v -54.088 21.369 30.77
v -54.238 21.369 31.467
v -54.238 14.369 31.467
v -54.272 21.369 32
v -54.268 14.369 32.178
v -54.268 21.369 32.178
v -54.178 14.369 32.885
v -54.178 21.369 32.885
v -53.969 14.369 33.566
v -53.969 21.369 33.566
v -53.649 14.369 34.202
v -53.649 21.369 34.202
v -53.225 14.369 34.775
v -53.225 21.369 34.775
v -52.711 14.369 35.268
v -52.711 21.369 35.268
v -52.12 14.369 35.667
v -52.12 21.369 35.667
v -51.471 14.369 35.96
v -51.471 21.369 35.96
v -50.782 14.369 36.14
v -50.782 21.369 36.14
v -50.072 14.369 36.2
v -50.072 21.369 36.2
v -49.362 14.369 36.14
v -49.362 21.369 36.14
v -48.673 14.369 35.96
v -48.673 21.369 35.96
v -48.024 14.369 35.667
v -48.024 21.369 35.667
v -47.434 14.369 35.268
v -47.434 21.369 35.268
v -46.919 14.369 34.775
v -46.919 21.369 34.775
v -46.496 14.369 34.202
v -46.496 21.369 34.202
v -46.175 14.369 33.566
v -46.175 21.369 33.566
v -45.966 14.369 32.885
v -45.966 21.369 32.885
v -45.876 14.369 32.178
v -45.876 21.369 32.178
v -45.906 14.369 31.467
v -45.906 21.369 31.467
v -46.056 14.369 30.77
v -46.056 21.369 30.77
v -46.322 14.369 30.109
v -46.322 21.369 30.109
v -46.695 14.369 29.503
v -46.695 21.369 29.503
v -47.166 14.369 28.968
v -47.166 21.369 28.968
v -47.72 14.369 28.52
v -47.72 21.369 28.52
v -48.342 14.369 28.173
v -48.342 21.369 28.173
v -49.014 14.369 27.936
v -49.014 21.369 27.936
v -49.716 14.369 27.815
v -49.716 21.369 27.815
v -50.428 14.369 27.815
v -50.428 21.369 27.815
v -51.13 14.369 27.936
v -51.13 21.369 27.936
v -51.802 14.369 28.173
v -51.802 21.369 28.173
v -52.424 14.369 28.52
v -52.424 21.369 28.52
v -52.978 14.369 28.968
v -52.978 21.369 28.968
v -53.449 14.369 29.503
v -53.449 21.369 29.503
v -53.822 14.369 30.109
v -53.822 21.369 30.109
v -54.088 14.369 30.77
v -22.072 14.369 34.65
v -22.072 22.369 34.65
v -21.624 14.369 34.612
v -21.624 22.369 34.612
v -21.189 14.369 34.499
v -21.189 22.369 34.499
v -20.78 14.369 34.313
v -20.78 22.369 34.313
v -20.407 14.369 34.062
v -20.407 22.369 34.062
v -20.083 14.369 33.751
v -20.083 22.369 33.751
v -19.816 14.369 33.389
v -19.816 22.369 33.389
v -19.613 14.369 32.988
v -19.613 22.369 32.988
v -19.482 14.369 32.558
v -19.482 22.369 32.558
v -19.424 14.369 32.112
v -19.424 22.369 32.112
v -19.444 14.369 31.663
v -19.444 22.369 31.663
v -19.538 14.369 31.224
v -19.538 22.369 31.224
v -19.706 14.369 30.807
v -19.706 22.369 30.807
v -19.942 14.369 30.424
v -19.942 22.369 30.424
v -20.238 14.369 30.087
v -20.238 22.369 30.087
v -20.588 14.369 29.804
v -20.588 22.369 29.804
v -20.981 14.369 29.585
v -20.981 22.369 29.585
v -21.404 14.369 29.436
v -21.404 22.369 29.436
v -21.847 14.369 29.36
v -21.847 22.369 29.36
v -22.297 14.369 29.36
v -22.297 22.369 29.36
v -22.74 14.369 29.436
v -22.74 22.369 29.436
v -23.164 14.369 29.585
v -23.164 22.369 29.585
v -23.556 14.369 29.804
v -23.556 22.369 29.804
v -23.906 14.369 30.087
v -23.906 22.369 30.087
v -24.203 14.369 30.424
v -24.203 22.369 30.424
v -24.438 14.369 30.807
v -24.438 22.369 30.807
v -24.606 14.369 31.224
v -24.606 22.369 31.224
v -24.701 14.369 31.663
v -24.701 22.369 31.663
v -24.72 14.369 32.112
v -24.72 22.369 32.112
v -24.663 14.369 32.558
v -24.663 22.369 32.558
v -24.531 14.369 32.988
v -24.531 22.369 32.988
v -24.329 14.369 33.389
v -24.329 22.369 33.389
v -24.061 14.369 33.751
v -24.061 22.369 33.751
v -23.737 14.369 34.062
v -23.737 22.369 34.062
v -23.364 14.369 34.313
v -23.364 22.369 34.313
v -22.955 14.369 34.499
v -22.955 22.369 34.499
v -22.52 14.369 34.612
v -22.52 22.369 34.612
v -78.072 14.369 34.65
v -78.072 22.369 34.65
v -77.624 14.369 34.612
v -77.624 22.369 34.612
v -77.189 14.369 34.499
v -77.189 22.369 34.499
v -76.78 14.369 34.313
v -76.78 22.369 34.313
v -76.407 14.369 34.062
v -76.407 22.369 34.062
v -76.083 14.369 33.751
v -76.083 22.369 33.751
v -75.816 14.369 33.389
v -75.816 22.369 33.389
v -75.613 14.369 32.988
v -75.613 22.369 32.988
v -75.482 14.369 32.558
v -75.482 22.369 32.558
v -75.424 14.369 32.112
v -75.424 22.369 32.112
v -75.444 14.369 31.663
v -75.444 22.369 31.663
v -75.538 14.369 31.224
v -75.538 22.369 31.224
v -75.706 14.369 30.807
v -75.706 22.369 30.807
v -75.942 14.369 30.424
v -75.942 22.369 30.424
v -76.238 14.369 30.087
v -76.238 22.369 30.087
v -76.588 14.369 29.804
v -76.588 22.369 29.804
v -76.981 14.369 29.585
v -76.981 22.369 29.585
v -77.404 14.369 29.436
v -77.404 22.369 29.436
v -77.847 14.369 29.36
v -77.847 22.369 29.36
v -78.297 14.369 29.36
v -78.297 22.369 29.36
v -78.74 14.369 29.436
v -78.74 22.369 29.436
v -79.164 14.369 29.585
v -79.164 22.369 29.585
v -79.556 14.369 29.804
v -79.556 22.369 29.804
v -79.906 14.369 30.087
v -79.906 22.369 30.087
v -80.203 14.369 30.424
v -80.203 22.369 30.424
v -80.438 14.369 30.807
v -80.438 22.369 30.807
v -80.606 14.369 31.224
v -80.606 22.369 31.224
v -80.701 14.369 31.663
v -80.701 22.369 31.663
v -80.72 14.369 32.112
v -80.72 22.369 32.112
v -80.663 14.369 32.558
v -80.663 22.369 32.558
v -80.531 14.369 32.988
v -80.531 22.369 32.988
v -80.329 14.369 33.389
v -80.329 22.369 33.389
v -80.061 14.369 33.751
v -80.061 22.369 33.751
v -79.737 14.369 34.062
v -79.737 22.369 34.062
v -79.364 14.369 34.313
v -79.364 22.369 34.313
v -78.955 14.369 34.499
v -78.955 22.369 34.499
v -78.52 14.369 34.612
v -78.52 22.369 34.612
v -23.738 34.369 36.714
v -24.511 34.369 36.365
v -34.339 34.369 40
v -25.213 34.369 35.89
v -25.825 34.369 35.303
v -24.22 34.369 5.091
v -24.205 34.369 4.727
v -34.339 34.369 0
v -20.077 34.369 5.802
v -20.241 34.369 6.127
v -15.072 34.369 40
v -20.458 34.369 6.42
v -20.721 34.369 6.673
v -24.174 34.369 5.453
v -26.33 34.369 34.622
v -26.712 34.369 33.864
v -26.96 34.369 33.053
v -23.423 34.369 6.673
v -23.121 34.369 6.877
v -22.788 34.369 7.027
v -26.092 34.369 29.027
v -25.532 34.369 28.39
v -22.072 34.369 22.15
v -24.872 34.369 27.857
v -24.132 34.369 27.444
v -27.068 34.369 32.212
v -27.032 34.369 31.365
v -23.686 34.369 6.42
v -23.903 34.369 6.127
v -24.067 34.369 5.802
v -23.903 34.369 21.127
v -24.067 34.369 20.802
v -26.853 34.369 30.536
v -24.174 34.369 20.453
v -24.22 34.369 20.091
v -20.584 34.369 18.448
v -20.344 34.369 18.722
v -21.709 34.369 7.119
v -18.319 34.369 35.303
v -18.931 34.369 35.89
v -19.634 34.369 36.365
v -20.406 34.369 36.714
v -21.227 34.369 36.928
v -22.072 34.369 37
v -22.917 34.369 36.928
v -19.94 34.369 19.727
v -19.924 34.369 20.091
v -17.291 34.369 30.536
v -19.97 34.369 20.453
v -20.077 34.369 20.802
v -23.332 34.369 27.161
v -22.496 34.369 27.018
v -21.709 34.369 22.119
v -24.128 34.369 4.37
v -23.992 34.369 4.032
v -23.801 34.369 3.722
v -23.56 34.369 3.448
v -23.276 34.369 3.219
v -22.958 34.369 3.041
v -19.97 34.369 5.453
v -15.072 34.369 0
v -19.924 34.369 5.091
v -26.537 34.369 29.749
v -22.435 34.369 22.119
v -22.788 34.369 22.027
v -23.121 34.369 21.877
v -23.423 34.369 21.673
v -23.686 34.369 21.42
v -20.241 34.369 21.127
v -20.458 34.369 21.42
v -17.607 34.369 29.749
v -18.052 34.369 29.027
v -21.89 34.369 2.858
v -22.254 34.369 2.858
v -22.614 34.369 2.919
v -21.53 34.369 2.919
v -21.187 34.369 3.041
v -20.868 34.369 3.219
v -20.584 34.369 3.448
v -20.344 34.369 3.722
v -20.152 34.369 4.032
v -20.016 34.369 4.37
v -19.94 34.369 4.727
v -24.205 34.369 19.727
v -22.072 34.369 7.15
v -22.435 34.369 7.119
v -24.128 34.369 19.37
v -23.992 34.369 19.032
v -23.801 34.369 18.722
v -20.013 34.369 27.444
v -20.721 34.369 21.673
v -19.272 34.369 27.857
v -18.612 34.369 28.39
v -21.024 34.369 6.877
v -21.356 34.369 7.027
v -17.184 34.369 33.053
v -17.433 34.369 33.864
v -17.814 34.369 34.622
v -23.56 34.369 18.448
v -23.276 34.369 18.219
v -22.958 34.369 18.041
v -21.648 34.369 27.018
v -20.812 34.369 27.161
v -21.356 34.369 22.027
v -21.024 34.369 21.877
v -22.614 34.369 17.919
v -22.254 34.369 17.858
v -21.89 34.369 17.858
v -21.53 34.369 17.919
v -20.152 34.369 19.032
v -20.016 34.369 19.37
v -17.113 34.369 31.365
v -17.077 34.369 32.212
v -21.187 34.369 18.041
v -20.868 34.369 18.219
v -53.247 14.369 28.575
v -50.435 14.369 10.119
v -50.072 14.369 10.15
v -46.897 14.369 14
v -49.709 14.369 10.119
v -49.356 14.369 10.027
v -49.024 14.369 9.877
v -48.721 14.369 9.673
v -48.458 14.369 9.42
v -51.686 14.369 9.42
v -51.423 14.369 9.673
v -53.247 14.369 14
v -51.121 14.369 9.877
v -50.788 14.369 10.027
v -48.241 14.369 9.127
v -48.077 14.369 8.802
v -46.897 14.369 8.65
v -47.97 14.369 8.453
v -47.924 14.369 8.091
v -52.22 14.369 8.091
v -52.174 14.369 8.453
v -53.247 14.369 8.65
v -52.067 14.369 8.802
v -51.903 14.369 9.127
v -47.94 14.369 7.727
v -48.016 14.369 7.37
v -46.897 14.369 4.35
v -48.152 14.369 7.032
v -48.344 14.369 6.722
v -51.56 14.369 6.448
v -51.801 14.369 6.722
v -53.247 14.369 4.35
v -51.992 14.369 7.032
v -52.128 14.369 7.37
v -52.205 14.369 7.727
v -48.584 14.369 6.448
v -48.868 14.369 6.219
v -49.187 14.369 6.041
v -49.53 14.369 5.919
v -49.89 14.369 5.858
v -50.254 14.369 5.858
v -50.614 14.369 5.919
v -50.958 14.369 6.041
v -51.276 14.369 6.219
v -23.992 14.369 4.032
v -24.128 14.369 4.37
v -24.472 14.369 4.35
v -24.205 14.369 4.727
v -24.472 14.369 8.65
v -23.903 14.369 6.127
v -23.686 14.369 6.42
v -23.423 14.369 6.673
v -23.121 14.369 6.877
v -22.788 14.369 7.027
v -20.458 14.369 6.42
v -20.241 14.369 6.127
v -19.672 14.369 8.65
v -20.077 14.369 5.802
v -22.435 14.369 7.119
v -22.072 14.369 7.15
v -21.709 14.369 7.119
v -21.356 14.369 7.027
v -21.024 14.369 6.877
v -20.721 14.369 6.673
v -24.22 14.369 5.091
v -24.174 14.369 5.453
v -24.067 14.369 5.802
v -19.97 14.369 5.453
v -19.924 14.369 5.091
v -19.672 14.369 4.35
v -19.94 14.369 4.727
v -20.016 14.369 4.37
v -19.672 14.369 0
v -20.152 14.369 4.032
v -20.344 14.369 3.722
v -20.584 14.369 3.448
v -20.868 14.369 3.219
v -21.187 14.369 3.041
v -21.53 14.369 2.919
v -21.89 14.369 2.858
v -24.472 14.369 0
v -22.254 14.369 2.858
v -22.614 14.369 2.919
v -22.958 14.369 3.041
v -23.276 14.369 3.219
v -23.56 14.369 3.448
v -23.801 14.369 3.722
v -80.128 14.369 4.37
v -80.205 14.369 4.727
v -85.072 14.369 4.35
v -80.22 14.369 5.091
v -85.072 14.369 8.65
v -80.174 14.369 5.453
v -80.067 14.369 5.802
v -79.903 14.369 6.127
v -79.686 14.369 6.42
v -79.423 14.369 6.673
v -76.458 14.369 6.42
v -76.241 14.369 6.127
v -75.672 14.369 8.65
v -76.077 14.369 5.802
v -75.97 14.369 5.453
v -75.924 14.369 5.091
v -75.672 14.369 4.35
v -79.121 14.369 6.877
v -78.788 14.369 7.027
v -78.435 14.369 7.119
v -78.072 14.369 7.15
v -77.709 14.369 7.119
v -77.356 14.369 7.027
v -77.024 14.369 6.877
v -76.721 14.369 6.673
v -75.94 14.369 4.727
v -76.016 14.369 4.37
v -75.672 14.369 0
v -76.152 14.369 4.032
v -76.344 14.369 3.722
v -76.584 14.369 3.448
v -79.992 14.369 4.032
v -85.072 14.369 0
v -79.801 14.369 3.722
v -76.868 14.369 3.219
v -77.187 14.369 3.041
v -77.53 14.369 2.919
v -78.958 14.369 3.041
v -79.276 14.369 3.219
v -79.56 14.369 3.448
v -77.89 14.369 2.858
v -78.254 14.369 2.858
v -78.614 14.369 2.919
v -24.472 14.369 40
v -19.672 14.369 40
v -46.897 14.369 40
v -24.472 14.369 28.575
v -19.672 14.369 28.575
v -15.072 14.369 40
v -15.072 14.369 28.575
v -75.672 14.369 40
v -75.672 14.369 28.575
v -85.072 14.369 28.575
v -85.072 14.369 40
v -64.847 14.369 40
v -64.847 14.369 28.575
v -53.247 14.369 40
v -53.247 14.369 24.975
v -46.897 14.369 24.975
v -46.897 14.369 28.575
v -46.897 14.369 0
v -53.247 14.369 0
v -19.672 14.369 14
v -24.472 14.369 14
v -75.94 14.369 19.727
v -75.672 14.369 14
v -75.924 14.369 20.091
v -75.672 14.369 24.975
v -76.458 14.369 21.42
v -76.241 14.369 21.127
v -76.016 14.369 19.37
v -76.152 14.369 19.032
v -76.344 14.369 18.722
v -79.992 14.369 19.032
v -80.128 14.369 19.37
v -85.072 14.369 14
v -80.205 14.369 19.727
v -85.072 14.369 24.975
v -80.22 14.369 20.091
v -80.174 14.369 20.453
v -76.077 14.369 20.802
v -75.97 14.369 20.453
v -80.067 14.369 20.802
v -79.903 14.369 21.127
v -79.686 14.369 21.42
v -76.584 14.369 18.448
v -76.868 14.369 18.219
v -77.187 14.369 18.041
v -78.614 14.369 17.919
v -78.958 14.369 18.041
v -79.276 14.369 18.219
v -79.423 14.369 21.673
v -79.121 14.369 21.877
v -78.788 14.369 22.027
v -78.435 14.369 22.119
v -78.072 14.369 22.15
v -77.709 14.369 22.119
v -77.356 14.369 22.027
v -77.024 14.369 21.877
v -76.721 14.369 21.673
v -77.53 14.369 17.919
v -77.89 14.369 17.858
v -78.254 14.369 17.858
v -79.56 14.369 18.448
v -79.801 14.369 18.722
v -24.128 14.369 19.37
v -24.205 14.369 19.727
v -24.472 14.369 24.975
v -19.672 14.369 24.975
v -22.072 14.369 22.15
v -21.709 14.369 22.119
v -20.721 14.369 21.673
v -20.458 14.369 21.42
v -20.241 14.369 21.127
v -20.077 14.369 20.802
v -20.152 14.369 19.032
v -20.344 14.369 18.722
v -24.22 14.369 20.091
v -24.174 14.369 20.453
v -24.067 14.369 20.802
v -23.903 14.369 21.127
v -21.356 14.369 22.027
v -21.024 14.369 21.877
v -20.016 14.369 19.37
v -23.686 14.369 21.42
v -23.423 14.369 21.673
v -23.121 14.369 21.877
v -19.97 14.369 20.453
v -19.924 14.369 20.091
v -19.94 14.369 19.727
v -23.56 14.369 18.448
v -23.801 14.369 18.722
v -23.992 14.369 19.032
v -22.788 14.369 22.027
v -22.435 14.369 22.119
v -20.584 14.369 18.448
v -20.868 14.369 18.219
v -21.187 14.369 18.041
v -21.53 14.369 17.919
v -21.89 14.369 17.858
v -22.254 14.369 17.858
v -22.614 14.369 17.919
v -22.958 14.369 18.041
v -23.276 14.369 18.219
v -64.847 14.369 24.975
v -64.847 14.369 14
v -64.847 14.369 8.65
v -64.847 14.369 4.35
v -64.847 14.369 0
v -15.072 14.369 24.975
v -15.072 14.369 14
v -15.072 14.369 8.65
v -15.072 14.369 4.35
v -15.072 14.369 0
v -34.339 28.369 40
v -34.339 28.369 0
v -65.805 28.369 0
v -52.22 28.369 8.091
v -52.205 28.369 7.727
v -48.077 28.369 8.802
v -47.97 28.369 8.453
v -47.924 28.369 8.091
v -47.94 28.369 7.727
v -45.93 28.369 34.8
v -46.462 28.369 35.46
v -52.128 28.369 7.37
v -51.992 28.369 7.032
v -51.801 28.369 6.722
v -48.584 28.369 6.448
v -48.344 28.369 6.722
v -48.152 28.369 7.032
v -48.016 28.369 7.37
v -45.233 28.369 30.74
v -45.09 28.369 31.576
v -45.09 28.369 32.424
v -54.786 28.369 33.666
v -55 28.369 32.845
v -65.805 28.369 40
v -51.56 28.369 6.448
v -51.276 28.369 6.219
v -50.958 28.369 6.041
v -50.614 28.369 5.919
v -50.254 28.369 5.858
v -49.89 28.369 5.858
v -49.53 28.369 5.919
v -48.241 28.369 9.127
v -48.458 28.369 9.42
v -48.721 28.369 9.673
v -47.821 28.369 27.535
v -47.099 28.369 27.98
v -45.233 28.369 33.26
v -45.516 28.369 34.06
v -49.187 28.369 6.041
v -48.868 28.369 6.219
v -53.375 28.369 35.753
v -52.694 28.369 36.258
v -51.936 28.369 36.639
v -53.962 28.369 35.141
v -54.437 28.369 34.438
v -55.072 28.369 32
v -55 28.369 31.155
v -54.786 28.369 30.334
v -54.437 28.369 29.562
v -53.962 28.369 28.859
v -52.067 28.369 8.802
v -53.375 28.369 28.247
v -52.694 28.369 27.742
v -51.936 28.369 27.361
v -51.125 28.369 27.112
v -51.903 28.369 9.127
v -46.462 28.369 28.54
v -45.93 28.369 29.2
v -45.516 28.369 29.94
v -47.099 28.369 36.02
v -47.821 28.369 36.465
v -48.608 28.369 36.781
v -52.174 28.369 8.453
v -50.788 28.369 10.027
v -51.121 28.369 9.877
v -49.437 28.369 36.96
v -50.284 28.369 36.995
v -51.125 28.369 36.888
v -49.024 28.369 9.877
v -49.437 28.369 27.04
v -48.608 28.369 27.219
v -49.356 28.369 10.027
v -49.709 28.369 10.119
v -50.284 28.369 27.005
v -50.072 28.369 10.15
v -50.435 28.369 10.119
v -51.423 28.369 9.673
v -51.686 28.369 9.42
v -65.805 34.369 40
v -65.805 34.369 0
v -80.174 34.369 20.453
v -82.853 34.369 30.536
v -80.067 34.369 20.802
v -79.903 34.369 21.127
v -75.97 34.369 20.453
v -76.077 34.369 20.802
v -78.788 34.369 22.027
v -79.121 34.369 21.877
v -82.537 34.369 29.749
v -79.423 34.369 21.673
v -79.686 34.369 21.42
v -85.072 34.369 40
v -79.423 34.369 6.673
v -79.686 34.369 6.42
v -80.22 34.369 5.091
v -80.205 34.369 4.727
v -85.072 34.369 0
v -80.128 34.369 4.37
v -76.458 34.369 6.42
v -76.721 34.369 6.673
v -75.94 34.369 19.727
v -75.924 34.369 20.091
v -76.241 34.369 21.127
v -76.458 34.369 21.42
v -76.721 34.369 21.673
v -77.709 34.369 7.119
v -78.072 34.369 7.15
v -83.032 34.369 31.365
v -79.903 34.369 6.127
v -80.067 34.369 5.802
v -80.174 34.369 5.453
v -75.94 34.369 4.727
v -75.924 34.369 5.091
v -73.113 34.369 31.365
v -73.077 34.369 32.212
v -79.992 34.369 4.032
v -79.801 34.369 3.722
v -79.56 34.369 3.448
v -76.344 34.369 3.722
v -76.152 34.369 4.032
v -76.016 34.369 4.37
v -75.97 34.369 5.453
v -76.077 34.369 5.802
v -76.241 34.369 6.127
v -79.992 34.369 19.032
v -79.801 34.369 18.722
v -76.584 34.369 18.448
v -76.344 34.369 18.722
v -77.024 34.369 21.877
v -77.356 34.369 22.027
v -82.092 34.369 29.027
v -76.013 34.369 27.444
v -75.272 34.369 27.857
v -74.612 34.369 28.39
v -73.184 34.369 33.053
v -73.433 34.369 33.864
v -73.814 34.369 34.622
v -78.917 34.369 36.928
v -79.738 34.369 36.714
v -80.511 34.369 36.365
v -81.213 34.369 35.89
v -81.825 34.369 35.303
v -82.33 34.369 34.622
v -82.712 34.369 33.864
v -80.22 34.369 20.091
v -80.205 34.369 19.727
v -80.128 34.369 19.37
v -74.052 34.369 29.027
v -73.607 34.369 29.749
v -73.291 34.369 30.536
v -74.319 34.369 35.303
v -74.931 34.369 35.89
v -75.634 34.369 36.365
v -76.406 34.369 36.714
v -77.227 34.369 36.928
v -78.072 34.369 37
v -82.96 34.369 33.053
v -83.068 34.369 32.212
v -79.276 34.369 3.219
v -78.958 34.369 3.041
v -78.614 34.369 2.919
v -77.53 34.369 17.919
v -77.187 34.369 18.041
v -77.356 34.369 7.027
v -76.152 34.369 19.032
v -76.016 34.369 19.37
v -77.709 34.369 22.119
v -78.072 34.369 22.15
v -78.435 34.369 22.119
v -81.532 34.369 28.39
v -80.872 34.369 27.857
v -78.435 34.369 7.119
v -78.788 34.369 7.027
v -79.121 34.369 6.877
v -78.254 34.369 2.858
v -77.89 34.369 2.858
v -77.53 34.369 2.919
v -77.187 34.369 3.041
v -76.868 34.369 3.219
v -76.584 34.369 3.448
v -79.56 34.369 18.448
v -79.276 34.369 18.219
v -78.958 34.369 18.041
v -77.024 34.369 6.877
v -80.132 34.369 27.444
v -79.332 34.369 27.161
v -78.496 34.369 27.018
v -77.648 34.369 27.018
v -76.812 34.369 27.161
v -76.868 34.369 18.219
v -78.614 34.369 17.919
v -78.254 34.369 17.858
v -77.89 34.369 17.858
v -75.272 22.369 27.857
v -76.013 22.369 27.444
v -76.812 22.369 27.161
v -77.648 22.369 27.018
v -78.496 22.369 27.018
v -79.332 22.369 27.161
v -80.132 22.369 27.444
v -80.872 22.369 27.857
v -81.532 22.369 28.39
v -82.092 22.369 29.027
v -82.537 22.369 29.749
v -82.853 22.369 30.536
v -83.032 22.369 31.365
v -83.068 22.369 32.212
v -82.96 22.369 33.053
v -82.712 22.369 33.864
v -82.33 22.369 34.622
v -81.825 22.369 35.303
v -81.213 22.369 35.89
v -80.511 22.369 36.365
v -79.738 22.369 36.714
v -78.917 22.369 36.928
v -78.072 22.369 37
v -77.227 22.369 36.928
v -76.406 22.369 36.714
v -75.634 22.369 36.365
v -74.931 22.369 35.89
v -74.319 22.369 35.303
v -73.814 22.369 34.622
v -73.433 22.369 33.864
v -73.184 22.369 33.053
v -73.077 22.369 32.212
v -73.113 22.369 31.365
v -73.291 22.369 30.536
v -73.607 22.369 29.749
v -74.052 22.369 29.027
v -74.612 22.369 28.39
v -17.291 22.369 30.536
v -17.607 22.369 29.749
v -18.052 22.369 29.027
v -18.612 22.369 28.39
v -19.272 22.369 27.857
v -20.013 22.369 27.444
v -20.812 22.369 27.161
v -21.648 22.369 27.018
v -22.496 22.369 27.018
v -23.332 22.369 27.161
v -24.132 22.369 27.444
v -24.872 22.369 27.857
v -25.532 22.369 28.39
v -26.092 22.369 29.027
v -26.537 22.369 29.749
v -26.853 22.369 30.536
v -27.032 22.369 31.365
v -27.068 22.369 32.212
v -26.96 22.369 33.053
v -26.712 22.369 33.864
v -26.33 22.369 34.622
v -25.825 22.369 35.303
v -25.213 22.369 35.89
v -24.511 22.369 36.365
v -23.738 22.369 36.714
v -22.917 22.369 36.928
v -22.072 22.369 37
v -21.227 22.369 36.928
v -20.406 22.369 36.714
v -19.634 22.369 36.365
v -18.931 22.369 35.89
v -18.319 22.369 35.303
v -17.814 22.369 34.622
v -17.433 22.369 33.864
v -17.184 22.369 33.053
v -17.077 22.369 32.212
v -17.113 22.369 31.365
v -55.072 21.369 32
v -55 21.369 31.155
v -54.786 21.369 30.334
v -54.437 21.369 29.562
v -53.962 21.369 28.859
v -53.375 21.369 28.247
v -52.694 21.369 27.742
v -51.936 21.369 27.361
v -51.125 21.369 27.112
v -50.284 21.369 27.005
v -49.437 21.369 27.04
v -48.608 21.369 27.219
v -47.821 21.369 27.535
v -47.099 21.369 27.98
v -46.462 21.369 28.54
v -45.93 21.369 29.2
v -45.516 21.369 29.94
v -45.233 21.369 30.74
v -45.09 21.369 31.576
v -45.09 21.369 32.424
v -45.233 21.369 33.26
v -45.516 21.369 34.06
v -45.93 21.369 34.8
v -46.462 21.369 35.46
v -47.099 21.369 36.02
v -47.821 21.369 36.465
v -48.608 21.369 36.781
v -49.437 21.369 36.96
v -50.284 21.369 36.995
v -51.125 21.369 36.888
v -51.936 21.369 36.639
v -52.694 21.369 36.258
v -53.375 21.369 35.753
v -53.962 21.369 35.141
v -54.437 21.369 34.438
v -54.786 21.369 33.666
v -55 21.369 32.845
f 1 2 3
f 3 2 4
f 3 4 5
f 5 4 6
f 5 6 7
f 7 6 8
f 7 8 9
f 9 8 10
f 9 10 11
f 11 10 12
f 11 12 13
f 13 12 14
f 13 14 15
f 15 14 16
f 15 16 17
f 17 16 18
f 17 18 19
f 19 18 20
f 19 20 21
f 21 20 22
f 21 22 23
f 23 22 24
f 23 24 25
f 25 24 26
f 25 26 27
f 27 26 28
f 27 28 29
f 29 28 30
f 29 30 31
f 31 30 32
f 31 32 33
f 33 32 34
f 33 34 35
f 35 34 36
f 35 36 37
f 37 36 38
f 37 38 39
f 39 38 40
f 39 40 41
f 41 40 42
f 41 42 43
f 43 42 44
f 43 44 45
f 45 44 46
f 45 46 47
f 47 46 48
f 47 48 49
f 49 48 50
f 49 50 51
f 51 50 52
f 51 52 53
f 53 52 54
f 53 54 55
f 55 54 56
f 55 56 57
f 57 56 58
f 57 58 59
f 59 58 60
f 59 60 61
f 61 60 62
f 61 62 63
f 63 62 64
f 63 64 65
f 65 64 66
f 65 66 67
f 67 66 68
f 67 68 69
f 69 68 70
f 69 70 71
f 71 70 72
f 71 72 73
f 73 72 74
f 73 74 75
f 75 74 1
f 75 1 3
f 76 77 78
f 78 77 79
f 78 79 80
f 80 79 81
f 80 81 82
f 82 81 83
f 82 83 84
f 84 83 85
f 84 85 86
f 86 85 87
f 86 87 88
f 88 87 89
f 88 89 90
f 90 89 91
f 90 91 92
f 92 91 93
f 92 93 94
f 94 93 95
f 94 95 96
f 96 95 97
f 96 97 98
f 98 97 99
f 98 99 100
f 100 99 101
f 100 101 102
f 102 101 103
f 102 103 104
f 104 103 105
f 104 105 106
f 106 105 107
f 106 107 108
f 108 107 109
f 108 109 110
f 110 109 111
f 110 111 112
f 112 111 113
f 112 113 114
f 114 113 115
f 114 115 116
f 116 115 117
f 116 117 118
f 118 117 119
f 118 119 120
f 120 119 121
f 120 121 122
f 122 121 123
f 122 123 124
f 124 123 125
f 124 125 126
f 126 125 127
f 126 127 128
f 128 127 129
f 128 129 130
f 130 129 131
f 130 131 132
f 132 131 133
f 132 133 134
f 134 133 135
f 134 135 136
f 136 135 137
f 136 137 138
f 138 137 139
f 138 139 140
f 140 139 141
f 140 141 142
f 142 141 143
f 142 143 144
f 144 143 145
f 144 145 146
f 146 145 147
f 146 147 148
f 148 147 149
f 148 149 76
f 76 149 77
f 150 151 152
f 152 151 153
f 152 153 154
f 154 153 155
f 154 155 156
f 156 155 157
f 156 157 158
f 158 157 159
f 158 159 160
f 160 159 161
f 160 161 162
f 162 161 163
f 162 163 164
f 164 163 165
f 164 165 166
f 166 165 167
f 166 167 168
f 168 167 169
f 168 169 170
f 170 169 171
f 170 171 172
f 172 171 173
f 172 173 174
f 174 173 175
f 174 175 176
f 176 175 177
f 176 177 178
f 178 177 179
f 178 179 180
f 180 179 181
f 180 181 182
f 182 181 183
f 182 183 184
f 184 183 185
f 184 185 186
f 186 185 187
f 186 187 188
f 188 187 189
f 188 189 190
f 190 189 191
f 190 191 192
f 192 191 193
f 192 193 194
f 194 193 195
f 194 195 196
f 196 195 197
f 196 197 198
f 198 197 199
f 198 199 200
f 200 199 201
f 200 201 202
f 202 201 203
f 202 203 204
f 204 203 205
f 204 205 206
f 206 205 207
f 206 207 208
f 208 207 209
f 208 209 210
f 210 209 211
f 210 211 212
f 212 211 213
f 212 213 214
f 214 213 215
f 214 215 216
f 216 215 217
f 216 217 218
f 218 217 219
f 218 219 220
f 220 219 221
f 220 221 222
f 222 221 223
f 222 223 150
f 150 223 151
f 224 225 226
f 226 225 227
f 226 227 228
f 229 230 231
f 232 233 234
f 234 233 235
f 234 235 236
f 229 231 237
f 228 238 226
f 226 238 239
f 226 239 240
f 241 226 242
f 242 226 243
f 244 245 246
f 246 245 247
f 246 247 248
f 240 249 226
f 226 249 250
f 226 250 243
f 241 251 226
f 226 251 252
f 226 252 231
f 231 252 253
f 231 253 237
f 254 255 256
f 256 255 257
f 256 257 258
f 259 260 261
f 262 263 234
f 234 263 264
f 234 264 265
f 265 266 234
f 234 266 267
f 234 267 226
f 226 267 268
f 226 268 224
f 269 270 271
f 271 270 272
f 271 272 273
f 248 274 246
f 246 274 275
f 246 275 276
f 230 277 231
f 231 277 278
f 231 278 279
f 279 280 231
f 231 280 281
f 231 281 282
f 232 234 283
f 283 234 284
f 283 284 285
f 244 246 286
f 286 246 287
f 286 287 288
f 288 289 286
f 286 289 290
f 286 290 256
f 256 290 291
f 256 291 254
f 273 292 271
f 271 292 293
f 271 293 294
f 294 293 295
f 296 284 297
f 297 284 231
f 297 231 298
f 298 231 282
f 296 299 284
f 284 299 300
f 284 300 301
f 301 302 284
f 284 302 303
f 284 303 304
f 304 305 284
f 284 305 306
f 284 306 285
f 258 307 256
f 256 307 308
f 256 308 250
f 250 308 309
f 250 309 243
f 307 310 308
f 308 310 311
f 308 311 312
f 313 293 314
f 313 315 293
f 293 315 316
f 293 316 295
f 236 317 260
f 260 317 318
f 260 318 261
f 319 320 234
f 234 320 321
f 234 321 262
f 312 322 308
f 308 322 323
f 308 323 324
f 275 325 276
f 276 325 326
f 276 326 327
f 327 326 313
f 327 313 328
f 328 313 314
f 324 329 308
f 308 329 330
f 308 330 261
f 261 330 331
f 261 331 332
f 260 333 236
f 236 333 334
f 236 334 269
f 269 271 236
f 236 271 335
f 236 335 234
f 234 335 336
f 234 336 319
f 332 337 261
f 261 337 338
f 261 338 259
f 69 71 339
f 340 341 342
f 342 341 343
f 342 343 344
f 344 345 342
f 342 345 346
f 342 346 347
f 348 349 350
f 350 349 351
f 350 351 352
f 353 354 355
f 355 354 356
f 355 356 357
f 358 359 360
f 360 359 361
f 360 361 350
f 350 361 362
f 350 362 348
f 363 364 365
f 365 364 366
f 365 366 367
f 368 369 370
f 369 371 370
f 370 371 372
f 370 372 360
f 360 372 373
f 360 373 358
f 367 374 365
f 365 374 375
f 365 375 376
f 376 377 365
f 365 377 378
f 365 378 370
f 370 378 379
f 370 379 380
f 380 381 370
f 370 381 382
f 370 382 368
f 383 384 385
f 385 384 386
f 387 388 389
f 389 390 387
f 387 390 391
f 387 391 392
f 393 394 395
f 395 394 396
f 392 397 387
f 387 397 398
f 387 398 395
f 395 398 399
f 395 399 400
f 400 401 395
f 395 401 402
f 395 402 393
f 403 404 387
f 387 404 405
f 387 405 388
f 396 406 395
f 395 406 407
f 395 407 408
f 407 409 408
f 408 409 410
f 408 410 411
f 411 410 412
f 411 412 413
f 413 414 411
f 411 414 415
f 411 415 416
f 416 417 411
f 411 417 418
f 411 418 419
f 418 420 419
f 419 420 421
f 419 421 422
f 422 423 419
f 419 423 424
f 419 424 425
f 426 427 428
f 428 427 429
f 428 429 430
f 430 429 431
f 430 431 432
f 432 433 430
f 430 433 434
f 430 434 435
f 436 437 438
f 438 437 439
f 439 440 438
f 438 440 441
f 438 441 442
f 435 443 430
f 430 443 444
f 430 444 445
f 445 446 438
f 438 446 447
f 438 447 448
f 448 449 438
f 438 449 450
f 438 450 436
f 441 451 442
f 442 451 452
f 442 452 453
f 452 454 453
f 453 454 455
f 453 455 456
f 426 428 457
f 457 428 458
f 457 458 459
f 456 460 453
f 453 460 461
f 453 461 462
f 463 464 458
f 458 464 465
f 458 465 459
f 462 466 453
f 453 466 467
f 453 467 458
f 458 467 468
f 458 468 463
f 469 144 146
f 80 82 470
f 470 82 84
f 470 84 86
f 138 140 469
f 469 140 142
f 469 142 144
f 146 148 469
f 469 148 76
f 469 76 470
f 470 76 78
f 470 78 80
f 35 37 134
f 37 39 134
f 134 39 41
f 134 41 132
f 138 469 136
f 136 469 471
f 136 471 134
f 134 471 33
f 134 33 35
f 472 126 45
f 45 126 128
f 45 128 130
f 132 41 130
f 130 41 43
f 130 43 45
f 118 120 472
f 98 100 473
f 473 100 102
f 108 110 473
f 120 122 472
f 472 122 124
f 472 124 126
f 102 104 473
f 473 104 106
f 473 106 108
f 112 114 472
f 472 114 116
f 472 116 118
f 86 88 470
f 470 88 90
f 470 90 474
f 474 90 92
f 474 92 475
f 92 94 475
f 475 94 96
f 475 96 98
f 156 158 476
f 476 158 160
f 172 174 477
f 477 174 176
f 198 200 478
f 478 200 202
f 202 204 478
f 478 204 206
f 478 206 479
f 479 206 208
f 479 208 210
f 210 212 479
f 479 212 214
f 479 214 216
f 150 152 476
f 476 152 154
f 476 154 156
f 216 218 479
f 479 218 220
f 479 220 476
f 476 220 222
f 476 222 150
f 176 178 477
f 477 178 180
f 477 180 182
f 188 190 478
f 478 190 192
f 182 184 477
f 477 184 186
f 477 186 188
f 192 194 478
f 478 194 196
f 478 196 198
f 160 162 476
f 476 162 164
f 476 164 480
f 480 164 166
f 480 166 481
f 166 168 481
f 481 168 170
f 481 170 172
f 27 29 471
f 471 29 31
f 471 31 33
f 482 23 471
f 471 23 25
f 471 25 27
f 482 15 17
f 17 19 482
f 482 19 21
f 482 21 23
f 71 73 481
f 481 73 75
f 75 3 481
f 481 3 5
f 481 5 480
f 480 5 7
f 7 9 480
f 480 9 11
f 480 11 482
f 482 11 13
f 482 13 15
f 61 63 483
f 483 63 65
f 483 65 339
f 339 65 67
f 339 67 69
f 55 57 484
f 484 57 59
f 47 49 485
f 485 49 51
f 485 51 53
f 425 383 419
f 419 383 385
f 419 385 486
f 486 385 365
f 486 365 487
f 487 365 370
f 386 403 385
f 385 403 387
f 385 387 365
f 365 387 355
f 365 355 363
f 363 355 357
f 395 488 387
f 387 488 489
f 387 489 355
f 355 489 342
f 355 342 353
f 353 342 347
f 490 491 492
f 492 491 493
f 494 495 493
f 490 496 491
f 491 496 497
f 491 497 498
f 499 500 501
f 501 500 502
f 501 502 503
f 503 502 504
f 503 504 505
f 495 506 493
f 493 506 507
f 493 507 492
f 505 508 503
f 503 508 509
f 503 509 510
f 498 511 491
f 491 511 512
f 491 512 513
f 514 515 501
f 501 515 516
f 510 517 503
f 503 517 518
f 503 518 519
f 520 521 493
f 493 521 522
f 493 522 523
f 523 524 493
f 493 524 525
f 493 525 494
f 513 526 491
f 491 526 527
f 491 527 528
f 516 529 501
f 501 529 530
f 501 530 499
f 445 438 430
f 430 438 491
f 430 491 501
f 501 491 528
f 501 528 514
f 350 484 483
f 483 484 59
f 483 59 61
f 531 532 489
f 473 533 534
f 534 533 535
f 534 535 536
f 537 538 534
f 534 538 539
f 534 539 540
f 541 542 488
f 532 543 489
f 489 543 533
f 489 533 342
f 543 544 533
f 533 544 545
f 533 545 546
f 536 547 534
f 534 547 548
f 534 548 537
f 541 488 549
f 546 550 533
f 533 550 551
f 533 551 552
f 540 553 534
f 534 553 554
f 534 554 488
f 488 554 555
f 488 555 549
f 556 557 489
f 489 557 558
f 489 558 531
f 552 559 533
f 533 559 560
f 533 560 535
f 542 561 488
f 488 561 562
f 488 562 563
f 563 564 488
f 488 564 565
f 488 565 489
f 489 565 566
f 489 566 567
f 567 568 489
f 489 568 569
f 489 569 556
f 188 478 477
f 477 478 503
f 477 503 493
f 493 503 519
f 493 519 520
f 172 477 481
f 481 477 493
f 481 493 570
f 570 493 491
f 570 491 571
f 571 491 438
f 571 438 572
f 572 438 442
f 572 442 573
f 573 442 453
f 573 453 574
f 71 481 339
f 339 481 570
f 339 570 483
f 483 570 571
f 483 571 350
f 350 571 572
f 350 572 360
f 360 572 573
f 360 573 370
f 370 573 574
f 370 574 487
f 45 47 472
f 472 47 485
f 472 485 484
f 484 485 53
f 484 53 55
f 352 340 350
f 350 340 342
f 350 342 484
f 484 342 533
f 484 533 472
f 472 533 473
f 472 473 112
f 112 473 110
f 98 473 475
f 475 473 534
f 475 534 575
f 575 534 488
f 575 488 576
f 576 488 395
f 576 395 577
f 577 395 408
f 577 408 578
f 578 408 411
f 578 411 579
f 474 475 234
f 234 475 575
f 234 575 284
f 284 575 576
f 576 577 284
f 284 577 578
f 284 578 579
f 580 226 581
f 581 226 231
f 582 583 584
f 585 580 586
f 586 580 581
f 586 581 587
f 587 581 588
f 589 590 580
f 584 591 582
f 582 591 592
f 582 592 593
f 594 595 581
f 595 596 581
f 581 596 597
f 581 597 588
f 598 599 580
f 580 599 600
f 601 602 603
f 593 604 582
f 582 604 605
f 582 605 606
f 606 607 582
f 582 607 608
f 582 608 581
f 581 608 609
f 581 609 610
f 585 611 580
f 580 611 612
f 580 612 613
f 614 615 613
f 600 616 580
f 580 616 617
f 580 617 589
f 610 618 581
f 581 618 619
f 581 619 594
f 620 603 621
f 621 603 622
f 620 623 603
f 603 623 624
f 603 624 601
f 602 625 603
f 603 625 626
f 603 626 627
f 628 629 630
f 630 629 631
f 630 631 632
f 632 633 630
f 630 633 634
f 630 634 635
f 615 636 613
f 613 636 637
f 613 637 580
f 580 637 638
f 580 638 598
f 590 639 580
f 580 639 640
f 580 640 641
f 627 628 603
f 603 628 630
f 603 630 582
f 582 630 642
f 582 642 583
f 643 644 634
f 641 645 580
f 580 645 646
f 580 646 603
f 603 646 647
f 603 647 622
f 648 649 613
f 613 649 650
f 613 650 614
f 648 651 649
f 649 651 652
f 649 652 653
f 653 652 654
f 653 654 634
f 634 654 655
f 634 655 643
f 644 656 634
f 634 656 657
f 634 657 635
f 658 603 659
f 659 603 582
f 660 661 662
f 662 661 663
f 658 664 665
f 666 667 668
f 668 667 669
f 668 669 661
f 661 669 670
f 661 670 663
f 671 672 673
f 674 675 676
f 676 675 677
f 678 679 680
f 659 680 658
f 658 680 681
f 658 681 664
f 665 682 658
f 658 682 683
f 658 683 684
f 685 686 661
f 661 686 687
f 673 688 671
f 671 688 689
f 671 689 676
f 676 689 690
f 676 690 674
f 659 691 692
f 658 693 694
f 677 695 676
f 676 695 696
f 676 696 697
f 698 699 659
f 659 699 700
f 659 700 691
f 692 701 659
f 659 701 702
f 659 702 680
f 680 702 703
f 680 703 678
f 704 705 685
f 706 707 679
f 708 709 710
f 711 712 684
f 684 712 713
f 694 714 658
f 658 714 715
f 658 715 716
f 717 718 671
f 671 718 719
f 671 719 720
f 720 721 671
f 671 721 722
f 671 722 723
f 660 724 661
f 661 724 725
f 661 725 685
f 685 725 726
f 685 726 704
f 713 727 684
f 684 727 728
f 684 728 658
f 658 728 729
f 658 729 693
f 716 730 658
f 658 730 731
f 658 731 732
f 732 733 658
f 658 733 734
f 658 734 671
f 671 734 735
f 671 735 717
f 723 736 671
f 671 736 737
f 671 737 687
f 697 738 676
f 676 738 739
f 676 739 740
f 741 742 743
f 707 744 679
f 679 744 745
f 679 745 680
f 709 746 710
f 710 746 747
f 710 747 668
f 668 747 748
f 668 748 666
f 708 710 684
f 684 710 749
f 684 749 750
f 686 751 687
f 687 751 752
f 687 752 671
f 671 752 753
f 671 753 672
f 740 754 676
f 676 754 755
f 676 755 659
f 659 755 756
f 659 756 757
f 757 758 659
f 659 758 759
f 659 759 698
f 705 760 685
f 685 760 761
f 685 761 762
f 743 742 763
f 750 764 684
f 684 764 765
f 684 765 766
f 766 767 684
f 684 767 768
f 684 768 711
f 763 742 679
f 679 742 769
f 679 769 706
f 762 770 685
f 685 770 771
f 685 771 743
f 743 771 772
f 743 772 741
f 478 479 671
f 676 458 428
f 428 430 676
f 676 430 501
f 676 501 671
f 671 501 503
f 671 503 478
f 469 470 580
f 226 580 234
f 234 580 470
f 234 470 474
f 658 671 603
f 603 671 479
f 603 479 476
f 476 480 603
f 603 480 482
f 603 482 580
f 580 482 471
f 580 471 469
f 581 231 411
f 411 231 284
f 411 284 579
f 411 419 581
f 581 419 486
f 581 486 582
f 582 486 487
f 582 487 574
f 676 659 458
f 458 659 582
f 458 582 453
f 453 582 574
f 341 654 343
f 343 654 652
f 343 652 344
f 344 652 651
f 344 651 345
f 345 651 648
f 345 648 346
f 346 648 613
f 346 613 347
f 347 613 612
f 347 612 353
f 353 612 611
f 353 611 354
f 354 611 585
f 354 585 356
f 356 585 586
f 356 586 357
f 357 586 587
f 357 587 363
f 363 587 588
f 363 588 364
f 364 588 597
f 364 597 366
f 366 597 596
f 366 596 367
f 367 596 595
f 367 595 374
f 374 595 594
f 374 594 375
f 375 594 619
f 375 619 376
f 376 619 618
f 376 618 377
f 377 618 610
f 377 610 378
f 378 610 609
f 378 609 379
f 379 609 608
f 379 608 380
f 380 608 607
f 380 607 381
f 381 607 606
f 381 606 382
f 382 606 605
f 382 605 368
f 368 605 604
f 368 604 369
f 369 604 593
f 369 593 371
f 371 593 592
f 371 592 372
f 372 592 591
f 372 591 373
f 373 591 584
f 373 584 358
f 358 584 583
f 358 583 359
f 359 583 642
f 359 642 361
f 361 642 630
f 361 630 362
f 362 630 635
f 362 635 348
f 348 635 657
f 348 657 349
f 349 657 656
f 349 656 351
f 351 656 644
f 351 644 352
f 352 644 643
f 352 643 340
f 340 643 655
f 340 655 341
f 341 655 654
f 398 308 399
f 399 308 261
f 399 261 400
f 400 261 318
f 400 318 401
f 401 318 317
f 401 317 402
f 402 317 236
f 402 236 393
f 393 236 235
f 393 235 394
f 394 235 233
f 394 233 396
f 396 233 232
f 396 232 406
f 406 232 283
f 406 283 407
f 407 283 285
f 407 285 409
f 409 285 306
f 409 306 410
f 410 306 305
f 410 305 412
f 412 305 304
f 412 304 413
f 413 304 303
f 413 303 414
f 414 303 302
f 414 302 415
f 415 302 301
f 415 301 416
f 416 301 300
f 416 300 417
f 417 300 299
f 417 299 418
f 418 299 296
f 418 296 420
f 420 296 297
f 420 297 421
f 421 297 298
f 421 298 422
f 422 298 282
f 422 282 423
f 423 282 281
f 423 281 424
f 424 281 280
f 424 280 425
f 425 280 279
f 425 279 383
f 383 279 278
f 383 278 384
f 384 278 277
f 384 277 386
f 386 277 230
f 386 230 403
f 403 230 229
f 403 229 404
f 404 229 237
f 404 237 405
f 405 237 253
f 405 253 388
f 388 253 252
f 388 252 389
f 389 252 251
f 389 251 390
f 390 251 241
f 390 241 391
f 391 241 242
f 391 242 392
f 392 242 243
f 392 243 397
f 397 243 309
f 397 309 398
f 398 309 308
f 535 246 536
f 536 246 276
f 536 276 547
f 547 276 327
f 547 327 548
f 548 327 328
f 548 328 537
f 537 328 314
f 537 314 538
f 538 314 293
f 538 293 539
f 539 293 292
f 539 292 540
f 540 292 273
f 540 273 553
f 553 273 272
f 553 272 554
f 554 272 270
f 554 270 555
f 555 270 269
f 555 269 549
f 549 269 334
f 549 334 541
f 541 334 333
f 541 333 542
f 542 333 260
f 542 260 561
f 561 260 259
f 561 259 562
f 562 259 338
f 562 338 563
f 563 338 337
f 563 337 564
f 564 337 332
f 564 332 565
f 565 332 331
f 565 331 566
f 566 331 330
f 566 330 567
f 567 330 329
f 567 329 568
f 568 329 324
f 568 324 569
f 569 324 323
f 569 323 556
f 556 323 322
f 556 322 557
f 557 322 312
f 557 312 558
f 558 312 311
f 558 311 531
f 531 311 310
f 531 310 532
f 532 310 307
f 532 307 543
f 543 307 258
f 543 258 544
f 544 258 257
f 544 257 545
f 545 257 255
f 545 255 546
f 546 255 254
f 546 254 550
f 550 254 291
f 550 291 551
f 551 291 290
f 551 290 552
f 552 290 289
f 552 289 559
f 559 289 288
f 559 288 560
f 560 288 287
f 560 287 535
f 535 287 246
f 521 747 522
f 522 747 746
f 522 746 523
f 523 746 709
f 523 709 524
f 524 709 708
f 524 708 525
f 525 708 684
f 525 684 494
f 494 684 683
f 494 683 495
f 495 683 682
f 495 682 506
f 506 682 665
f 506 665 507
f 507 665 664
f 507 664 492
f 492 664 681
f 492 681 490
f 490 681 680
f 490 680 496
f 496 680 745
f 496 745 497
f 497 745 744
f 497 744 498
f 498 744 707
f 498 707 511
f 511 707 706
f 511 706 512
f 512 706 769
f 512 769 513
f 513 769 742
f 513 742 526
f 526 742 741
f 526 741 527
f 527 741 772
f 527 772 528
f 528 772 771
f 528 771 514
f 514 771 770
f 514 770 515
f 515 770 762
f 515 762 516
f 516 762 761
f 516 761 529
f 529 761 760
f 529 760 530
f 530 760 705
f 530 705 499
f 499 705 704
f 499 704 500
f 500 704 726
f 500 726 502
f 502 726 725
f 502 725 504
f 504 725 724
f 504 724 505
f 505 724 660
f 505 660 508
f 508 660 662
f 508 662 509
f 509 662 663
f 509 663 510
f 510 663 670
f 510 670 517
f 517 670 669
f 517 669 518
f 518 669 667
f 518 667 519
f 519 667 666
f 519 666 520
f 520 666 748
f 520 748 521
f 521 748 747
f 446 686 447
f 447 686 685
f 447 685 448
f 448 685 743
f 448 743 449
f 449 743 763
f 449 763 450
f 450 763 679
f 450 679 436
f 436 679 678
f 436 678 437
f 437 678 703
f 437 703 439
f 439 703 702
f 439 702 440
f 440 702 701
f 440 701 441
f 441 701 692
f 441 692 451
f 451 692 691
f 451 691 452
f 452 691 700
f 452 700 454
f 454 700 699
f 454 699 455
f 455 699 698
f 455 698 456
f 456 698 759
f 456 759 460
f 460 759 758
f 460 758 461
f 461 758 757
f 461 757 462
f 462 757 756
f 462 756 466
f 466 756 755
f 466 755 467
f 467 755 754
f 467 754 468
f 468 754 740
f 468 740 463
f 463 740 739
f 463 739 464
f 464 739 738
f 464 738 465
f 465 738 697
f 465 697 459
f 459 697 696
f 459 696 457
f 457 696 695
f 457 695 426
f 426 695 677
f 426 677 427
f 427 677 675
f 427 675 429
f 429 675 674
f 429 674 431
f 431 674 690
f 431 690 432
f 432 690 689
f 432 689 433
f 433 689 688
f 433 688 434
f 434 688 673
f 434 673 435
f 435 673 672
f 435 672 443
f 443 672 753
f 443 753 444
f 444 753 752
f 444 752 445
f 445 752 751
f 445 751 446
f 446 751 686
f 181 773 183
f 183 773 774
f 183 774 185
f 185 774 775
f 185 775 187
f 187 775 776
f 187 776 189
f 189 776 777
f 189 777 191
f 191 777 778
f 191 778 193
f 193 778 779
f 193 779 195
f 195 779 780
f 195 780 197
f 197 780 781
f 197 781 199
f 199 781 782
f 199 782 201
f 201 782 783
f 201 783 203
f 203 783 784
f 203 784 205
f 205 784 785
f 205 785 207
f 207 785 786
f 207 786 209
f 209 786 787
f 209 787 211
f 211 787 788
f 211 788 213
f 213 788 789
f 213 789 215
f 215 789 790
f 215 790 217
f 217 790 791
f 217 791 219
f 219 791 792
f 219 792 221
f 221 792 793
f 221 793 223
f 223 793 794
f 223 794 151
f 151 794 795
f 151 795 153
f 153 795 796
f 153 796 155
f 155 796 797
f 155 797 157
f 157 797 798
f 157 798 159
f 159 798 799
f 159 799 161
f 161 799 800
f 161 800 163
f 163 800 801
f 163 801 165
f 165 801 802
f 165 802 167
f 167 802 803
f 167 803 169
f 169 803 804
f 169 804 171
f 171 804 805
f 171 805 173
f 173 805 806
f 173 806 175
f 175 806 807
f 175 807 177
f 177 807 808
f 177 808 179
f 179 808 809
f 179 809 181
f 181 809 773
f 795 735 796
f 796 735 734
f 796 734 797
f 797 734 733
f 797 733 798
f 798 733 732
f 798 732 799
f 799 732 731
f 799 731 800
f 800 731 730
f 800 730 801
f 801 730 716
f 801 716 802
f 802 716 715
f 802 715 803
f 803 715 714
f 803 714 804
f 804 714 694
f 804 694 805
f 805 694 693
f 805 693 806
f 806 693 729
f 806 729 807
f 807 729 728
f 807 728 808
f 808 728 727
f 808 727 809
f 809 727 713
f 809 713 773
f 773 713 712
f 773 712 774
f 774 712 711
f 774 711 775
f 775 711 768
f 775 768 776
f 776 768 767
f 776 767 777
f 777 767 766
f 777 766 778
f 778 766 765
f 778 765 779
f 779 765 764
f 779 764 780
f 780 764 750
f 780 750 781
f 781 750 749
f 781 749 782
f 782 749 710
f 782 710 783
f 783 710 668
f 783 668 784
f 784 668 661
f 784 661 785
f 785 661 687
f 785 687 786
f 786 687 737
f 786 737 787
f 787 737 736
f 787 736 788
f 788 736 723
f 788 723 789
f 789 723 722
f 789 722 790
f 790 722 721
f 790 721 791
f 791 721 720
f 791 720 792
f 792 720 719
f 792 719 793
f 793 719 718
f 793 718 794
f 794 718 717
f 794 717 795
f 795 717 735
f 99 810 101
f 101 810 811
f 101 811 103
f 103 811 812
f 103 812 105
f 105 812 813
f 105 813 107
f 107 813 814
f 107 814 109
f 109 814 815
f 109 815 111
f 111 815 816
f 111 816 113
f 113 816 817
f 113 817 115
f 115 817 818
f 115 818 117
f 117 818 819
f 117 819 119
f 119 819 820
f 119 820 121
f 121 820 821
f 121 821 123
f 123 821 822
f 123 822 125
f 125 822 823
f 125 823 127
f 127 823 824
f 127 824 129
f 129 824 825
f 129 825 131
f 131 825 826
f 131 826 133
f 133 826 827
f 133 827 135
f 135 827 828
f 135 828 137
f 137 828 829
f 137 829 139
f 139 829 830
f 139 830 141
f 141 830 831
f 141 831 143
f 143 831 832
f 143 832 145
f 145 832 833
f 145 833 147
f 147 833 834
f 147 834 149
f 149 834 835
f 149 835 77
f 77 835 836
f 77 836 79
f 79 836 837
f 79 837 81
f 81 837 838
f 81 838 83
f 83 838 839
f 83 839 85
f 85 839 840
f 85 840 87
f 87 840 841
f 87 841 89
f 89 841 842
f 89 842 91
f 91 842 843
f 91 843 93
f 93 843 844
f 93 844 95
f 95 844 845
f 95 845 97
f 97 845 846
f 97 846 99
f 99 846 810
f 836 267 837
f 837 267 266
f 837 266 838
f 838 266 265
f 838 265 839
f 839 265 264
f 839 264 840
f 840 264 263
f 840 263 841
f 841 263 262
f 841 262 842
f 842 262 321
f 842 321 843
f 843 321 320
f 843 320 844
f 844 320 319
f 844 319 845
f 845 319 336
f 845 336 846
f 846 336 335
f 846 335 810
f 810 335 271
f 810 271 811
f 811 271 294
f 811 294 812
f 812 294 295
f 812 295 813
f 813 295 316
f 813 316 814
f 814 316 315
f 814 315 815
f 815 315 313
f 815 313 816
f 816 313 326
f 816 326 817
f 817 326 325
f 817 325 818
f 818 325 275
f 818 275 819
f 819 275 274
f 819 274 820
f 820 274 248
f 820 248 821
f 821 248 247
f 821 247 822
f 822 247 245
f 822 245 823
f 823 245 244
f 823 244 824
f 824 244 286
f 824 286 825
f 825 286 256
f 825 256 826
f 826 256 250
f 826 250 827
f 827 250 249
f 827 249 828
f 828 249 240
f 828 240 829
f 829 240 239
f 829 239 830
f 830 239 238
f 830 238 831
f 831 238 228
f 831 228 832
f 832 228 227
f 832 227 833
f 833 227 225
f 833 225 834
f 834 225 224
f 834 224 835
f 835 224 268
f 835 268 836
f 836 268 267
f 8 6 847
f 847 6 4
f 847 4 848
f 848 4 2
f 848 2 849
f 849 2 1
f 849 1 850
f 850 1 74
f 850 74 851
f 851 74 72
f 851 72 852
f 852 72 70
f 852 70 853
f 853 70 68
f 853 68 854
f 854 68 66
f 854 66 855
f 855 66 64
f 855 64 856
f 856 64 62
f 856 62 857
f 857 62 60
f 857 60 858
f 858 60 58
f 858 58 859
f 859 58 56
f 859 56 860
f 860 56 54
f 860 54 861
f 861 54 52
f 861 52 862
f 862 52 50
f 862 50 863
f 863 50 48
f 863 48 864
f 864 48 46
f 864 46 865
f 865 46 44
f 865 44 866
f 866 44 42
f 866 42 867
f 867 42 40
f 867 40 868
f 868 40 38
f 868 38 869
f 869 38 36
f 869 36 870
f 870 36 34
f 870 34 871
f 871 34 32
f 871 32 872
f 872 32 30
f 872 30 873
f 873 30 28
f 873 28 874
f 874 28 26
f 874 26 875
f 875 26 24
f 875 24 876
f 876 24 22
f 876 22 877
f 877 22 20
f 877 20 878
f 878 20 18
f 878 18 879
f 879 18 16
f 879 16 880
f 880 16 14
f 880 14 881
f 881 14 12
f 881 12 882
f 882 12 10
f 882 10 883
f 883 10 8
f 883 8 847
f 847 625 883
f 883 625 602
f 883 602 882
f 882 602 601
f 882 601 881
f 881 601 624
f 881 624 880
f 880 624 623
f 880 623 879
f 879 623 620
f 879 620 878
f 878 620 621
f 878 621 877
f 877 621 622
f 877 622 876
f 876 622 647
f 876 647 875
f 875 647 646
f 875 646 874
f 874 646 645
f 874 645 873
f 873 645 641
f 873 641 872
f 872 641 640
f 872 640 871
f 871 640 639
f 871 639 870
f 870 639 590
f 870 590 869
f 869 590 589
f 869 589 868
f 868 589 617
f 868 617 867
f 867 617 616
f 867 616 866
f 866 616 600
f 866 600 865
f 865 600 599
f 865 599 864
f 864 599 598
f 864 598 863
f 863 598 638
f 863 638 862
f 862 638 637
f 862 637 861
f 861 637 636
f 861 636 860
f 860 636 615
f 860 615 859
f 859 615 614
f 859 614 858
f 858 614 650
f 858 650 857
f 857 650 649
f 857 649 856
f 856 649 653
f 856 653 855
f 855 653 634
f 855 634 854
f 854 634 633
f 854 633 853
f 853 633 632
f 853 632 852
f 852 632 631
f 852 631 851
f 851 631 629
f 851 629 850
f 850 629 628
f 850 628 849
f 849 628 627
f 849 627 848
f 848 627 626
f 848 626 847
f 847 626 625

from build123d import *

# Parameters (mm, degrees)
AUFSATZ_LINEAR_AUSTRAGEN1_DEPTH  = 40
DURCHGANGSLOCH_F_R_M41_D         = 4.3
DURCHGANGSLOCH_F_R_M42_D         = 4.3
F_5_3_5_3_DURCHMESSER_BOHRUNG1_D = 5.3
DURCHGANGSLOCH_F_R_M81_D         = 8.4
SKIZZE26_R                       = 5
SCHNITT_LINEAR_AUSTRAGEN3_DEPTH  = 12
SKIZZE27_R                       = 5
SCHNITT_LINEAR_AUSTRAGEN4_DEPTH  = 7


with BuildPart() as part:
    # Skizze1 → Aufsatz-Linear austragen1 (new body)
    with BuildSketch(Plane.XY):
        Polygon((-85.072105864, 34.368747103), (-85.072105864, 14.368747103), (-50.072105864, 14.368747103), (-50.072105864, 28.368747103), (-65.805439197, 28.368747103), (-65.805439197, 34.368747103), align=None)
        Polygon((-50.072105864, 28.368747103), (-50.072105864, 14.368747103), (-15.072105864, 14.368747103), (-15.072105864, 34.368747103), (-34.33877253, 34.368747103), (-34.33877253, 28.368747103), align=None)
    extrude(amount=AUFSATZ_LINEAR_AUSTRAGEN1_DEPTH)

    # Durchgangsloch für M41 (through all)
    with Locations(Plane(origin=(0, 28.368747103, 0), x_dir=(1, 0, 0), z_dir=(0, 1, 0))):
        with Locations((-50.072105864, -8)):
            Hole(DURCHGANGSLOCH_F_R_M41_D / 2)

    # Durchgangsloch für M42 (through all)
    with Locations(Plane(origin=(0, 34.368747103, 0), x_dir=(1, 0, 0), z_dir=(0, 1, 0))):
        with Locations((-78.072105864, -5), (-78.072105864, -20), (-22.072105864, -20), (-22.072105864, -5)):
            Hole(DURCHGANGSLOCH_F_R_M42_D / 2)

    # Ø5.3 (5.3) Durchmesser Bohrung1 (through all)
    with Locations(Plane(origin=(0, 34.368747103, 0), x_dir=(1, 0, 0), z_dir=(0, 1, 0))):
        with Locations((-78.072105864, -32), (-22.072105864, -32)):
            Hole(F_5_3_5_3_DURCHMESSER_BOHRUNG1_D / 2)

    # Durchgangsloch für M81 (through all)
    with Locations(Plane(origin=(0, 28.368747103, 0), x_dir=(1, 0, 0), z_dir=(0, 1, 0))):
        with Locations((-50.072105864, -32)):
            Hole(DURCHGANGSLOCH_F_R_M81_D / 2)

    # Skizze26 → Schnitt-Linear austragen3 (cut)
    with BuildSketch(Plane(origin=(0, 34.368747103, 0), x_dir=(1, 0, 0), z_dir=(0, 1, 0))):
        with Locations((-78.072105864, -32)):
            Circle(SKIZZE26_R)
        with Locations((-22.072105864, -32)):
            Circle(SKIZZE26_R)
    extrude(amount=-SCHNITT_LINEAR_AUSTRAGEN3_DEPTH, mode=Mode.SUBTRACT)

    # Skizze27 → Schnitt-Linear austragen4 (cut)
    with BuildSketch(Plane(origin=(0, 28.368747103, 0), x_dir=(1, 0, 0), z_dir=(0, 1, 0))):
        with Locations((-50.072105864, -32)):
            Circle(SKIZZE27_R)
    extrude(amount=-SCHNITT_LINEAR_AUSTRAGEN4_DEPTH, mode=Mode.SUBTRACT)


solid = part.part
